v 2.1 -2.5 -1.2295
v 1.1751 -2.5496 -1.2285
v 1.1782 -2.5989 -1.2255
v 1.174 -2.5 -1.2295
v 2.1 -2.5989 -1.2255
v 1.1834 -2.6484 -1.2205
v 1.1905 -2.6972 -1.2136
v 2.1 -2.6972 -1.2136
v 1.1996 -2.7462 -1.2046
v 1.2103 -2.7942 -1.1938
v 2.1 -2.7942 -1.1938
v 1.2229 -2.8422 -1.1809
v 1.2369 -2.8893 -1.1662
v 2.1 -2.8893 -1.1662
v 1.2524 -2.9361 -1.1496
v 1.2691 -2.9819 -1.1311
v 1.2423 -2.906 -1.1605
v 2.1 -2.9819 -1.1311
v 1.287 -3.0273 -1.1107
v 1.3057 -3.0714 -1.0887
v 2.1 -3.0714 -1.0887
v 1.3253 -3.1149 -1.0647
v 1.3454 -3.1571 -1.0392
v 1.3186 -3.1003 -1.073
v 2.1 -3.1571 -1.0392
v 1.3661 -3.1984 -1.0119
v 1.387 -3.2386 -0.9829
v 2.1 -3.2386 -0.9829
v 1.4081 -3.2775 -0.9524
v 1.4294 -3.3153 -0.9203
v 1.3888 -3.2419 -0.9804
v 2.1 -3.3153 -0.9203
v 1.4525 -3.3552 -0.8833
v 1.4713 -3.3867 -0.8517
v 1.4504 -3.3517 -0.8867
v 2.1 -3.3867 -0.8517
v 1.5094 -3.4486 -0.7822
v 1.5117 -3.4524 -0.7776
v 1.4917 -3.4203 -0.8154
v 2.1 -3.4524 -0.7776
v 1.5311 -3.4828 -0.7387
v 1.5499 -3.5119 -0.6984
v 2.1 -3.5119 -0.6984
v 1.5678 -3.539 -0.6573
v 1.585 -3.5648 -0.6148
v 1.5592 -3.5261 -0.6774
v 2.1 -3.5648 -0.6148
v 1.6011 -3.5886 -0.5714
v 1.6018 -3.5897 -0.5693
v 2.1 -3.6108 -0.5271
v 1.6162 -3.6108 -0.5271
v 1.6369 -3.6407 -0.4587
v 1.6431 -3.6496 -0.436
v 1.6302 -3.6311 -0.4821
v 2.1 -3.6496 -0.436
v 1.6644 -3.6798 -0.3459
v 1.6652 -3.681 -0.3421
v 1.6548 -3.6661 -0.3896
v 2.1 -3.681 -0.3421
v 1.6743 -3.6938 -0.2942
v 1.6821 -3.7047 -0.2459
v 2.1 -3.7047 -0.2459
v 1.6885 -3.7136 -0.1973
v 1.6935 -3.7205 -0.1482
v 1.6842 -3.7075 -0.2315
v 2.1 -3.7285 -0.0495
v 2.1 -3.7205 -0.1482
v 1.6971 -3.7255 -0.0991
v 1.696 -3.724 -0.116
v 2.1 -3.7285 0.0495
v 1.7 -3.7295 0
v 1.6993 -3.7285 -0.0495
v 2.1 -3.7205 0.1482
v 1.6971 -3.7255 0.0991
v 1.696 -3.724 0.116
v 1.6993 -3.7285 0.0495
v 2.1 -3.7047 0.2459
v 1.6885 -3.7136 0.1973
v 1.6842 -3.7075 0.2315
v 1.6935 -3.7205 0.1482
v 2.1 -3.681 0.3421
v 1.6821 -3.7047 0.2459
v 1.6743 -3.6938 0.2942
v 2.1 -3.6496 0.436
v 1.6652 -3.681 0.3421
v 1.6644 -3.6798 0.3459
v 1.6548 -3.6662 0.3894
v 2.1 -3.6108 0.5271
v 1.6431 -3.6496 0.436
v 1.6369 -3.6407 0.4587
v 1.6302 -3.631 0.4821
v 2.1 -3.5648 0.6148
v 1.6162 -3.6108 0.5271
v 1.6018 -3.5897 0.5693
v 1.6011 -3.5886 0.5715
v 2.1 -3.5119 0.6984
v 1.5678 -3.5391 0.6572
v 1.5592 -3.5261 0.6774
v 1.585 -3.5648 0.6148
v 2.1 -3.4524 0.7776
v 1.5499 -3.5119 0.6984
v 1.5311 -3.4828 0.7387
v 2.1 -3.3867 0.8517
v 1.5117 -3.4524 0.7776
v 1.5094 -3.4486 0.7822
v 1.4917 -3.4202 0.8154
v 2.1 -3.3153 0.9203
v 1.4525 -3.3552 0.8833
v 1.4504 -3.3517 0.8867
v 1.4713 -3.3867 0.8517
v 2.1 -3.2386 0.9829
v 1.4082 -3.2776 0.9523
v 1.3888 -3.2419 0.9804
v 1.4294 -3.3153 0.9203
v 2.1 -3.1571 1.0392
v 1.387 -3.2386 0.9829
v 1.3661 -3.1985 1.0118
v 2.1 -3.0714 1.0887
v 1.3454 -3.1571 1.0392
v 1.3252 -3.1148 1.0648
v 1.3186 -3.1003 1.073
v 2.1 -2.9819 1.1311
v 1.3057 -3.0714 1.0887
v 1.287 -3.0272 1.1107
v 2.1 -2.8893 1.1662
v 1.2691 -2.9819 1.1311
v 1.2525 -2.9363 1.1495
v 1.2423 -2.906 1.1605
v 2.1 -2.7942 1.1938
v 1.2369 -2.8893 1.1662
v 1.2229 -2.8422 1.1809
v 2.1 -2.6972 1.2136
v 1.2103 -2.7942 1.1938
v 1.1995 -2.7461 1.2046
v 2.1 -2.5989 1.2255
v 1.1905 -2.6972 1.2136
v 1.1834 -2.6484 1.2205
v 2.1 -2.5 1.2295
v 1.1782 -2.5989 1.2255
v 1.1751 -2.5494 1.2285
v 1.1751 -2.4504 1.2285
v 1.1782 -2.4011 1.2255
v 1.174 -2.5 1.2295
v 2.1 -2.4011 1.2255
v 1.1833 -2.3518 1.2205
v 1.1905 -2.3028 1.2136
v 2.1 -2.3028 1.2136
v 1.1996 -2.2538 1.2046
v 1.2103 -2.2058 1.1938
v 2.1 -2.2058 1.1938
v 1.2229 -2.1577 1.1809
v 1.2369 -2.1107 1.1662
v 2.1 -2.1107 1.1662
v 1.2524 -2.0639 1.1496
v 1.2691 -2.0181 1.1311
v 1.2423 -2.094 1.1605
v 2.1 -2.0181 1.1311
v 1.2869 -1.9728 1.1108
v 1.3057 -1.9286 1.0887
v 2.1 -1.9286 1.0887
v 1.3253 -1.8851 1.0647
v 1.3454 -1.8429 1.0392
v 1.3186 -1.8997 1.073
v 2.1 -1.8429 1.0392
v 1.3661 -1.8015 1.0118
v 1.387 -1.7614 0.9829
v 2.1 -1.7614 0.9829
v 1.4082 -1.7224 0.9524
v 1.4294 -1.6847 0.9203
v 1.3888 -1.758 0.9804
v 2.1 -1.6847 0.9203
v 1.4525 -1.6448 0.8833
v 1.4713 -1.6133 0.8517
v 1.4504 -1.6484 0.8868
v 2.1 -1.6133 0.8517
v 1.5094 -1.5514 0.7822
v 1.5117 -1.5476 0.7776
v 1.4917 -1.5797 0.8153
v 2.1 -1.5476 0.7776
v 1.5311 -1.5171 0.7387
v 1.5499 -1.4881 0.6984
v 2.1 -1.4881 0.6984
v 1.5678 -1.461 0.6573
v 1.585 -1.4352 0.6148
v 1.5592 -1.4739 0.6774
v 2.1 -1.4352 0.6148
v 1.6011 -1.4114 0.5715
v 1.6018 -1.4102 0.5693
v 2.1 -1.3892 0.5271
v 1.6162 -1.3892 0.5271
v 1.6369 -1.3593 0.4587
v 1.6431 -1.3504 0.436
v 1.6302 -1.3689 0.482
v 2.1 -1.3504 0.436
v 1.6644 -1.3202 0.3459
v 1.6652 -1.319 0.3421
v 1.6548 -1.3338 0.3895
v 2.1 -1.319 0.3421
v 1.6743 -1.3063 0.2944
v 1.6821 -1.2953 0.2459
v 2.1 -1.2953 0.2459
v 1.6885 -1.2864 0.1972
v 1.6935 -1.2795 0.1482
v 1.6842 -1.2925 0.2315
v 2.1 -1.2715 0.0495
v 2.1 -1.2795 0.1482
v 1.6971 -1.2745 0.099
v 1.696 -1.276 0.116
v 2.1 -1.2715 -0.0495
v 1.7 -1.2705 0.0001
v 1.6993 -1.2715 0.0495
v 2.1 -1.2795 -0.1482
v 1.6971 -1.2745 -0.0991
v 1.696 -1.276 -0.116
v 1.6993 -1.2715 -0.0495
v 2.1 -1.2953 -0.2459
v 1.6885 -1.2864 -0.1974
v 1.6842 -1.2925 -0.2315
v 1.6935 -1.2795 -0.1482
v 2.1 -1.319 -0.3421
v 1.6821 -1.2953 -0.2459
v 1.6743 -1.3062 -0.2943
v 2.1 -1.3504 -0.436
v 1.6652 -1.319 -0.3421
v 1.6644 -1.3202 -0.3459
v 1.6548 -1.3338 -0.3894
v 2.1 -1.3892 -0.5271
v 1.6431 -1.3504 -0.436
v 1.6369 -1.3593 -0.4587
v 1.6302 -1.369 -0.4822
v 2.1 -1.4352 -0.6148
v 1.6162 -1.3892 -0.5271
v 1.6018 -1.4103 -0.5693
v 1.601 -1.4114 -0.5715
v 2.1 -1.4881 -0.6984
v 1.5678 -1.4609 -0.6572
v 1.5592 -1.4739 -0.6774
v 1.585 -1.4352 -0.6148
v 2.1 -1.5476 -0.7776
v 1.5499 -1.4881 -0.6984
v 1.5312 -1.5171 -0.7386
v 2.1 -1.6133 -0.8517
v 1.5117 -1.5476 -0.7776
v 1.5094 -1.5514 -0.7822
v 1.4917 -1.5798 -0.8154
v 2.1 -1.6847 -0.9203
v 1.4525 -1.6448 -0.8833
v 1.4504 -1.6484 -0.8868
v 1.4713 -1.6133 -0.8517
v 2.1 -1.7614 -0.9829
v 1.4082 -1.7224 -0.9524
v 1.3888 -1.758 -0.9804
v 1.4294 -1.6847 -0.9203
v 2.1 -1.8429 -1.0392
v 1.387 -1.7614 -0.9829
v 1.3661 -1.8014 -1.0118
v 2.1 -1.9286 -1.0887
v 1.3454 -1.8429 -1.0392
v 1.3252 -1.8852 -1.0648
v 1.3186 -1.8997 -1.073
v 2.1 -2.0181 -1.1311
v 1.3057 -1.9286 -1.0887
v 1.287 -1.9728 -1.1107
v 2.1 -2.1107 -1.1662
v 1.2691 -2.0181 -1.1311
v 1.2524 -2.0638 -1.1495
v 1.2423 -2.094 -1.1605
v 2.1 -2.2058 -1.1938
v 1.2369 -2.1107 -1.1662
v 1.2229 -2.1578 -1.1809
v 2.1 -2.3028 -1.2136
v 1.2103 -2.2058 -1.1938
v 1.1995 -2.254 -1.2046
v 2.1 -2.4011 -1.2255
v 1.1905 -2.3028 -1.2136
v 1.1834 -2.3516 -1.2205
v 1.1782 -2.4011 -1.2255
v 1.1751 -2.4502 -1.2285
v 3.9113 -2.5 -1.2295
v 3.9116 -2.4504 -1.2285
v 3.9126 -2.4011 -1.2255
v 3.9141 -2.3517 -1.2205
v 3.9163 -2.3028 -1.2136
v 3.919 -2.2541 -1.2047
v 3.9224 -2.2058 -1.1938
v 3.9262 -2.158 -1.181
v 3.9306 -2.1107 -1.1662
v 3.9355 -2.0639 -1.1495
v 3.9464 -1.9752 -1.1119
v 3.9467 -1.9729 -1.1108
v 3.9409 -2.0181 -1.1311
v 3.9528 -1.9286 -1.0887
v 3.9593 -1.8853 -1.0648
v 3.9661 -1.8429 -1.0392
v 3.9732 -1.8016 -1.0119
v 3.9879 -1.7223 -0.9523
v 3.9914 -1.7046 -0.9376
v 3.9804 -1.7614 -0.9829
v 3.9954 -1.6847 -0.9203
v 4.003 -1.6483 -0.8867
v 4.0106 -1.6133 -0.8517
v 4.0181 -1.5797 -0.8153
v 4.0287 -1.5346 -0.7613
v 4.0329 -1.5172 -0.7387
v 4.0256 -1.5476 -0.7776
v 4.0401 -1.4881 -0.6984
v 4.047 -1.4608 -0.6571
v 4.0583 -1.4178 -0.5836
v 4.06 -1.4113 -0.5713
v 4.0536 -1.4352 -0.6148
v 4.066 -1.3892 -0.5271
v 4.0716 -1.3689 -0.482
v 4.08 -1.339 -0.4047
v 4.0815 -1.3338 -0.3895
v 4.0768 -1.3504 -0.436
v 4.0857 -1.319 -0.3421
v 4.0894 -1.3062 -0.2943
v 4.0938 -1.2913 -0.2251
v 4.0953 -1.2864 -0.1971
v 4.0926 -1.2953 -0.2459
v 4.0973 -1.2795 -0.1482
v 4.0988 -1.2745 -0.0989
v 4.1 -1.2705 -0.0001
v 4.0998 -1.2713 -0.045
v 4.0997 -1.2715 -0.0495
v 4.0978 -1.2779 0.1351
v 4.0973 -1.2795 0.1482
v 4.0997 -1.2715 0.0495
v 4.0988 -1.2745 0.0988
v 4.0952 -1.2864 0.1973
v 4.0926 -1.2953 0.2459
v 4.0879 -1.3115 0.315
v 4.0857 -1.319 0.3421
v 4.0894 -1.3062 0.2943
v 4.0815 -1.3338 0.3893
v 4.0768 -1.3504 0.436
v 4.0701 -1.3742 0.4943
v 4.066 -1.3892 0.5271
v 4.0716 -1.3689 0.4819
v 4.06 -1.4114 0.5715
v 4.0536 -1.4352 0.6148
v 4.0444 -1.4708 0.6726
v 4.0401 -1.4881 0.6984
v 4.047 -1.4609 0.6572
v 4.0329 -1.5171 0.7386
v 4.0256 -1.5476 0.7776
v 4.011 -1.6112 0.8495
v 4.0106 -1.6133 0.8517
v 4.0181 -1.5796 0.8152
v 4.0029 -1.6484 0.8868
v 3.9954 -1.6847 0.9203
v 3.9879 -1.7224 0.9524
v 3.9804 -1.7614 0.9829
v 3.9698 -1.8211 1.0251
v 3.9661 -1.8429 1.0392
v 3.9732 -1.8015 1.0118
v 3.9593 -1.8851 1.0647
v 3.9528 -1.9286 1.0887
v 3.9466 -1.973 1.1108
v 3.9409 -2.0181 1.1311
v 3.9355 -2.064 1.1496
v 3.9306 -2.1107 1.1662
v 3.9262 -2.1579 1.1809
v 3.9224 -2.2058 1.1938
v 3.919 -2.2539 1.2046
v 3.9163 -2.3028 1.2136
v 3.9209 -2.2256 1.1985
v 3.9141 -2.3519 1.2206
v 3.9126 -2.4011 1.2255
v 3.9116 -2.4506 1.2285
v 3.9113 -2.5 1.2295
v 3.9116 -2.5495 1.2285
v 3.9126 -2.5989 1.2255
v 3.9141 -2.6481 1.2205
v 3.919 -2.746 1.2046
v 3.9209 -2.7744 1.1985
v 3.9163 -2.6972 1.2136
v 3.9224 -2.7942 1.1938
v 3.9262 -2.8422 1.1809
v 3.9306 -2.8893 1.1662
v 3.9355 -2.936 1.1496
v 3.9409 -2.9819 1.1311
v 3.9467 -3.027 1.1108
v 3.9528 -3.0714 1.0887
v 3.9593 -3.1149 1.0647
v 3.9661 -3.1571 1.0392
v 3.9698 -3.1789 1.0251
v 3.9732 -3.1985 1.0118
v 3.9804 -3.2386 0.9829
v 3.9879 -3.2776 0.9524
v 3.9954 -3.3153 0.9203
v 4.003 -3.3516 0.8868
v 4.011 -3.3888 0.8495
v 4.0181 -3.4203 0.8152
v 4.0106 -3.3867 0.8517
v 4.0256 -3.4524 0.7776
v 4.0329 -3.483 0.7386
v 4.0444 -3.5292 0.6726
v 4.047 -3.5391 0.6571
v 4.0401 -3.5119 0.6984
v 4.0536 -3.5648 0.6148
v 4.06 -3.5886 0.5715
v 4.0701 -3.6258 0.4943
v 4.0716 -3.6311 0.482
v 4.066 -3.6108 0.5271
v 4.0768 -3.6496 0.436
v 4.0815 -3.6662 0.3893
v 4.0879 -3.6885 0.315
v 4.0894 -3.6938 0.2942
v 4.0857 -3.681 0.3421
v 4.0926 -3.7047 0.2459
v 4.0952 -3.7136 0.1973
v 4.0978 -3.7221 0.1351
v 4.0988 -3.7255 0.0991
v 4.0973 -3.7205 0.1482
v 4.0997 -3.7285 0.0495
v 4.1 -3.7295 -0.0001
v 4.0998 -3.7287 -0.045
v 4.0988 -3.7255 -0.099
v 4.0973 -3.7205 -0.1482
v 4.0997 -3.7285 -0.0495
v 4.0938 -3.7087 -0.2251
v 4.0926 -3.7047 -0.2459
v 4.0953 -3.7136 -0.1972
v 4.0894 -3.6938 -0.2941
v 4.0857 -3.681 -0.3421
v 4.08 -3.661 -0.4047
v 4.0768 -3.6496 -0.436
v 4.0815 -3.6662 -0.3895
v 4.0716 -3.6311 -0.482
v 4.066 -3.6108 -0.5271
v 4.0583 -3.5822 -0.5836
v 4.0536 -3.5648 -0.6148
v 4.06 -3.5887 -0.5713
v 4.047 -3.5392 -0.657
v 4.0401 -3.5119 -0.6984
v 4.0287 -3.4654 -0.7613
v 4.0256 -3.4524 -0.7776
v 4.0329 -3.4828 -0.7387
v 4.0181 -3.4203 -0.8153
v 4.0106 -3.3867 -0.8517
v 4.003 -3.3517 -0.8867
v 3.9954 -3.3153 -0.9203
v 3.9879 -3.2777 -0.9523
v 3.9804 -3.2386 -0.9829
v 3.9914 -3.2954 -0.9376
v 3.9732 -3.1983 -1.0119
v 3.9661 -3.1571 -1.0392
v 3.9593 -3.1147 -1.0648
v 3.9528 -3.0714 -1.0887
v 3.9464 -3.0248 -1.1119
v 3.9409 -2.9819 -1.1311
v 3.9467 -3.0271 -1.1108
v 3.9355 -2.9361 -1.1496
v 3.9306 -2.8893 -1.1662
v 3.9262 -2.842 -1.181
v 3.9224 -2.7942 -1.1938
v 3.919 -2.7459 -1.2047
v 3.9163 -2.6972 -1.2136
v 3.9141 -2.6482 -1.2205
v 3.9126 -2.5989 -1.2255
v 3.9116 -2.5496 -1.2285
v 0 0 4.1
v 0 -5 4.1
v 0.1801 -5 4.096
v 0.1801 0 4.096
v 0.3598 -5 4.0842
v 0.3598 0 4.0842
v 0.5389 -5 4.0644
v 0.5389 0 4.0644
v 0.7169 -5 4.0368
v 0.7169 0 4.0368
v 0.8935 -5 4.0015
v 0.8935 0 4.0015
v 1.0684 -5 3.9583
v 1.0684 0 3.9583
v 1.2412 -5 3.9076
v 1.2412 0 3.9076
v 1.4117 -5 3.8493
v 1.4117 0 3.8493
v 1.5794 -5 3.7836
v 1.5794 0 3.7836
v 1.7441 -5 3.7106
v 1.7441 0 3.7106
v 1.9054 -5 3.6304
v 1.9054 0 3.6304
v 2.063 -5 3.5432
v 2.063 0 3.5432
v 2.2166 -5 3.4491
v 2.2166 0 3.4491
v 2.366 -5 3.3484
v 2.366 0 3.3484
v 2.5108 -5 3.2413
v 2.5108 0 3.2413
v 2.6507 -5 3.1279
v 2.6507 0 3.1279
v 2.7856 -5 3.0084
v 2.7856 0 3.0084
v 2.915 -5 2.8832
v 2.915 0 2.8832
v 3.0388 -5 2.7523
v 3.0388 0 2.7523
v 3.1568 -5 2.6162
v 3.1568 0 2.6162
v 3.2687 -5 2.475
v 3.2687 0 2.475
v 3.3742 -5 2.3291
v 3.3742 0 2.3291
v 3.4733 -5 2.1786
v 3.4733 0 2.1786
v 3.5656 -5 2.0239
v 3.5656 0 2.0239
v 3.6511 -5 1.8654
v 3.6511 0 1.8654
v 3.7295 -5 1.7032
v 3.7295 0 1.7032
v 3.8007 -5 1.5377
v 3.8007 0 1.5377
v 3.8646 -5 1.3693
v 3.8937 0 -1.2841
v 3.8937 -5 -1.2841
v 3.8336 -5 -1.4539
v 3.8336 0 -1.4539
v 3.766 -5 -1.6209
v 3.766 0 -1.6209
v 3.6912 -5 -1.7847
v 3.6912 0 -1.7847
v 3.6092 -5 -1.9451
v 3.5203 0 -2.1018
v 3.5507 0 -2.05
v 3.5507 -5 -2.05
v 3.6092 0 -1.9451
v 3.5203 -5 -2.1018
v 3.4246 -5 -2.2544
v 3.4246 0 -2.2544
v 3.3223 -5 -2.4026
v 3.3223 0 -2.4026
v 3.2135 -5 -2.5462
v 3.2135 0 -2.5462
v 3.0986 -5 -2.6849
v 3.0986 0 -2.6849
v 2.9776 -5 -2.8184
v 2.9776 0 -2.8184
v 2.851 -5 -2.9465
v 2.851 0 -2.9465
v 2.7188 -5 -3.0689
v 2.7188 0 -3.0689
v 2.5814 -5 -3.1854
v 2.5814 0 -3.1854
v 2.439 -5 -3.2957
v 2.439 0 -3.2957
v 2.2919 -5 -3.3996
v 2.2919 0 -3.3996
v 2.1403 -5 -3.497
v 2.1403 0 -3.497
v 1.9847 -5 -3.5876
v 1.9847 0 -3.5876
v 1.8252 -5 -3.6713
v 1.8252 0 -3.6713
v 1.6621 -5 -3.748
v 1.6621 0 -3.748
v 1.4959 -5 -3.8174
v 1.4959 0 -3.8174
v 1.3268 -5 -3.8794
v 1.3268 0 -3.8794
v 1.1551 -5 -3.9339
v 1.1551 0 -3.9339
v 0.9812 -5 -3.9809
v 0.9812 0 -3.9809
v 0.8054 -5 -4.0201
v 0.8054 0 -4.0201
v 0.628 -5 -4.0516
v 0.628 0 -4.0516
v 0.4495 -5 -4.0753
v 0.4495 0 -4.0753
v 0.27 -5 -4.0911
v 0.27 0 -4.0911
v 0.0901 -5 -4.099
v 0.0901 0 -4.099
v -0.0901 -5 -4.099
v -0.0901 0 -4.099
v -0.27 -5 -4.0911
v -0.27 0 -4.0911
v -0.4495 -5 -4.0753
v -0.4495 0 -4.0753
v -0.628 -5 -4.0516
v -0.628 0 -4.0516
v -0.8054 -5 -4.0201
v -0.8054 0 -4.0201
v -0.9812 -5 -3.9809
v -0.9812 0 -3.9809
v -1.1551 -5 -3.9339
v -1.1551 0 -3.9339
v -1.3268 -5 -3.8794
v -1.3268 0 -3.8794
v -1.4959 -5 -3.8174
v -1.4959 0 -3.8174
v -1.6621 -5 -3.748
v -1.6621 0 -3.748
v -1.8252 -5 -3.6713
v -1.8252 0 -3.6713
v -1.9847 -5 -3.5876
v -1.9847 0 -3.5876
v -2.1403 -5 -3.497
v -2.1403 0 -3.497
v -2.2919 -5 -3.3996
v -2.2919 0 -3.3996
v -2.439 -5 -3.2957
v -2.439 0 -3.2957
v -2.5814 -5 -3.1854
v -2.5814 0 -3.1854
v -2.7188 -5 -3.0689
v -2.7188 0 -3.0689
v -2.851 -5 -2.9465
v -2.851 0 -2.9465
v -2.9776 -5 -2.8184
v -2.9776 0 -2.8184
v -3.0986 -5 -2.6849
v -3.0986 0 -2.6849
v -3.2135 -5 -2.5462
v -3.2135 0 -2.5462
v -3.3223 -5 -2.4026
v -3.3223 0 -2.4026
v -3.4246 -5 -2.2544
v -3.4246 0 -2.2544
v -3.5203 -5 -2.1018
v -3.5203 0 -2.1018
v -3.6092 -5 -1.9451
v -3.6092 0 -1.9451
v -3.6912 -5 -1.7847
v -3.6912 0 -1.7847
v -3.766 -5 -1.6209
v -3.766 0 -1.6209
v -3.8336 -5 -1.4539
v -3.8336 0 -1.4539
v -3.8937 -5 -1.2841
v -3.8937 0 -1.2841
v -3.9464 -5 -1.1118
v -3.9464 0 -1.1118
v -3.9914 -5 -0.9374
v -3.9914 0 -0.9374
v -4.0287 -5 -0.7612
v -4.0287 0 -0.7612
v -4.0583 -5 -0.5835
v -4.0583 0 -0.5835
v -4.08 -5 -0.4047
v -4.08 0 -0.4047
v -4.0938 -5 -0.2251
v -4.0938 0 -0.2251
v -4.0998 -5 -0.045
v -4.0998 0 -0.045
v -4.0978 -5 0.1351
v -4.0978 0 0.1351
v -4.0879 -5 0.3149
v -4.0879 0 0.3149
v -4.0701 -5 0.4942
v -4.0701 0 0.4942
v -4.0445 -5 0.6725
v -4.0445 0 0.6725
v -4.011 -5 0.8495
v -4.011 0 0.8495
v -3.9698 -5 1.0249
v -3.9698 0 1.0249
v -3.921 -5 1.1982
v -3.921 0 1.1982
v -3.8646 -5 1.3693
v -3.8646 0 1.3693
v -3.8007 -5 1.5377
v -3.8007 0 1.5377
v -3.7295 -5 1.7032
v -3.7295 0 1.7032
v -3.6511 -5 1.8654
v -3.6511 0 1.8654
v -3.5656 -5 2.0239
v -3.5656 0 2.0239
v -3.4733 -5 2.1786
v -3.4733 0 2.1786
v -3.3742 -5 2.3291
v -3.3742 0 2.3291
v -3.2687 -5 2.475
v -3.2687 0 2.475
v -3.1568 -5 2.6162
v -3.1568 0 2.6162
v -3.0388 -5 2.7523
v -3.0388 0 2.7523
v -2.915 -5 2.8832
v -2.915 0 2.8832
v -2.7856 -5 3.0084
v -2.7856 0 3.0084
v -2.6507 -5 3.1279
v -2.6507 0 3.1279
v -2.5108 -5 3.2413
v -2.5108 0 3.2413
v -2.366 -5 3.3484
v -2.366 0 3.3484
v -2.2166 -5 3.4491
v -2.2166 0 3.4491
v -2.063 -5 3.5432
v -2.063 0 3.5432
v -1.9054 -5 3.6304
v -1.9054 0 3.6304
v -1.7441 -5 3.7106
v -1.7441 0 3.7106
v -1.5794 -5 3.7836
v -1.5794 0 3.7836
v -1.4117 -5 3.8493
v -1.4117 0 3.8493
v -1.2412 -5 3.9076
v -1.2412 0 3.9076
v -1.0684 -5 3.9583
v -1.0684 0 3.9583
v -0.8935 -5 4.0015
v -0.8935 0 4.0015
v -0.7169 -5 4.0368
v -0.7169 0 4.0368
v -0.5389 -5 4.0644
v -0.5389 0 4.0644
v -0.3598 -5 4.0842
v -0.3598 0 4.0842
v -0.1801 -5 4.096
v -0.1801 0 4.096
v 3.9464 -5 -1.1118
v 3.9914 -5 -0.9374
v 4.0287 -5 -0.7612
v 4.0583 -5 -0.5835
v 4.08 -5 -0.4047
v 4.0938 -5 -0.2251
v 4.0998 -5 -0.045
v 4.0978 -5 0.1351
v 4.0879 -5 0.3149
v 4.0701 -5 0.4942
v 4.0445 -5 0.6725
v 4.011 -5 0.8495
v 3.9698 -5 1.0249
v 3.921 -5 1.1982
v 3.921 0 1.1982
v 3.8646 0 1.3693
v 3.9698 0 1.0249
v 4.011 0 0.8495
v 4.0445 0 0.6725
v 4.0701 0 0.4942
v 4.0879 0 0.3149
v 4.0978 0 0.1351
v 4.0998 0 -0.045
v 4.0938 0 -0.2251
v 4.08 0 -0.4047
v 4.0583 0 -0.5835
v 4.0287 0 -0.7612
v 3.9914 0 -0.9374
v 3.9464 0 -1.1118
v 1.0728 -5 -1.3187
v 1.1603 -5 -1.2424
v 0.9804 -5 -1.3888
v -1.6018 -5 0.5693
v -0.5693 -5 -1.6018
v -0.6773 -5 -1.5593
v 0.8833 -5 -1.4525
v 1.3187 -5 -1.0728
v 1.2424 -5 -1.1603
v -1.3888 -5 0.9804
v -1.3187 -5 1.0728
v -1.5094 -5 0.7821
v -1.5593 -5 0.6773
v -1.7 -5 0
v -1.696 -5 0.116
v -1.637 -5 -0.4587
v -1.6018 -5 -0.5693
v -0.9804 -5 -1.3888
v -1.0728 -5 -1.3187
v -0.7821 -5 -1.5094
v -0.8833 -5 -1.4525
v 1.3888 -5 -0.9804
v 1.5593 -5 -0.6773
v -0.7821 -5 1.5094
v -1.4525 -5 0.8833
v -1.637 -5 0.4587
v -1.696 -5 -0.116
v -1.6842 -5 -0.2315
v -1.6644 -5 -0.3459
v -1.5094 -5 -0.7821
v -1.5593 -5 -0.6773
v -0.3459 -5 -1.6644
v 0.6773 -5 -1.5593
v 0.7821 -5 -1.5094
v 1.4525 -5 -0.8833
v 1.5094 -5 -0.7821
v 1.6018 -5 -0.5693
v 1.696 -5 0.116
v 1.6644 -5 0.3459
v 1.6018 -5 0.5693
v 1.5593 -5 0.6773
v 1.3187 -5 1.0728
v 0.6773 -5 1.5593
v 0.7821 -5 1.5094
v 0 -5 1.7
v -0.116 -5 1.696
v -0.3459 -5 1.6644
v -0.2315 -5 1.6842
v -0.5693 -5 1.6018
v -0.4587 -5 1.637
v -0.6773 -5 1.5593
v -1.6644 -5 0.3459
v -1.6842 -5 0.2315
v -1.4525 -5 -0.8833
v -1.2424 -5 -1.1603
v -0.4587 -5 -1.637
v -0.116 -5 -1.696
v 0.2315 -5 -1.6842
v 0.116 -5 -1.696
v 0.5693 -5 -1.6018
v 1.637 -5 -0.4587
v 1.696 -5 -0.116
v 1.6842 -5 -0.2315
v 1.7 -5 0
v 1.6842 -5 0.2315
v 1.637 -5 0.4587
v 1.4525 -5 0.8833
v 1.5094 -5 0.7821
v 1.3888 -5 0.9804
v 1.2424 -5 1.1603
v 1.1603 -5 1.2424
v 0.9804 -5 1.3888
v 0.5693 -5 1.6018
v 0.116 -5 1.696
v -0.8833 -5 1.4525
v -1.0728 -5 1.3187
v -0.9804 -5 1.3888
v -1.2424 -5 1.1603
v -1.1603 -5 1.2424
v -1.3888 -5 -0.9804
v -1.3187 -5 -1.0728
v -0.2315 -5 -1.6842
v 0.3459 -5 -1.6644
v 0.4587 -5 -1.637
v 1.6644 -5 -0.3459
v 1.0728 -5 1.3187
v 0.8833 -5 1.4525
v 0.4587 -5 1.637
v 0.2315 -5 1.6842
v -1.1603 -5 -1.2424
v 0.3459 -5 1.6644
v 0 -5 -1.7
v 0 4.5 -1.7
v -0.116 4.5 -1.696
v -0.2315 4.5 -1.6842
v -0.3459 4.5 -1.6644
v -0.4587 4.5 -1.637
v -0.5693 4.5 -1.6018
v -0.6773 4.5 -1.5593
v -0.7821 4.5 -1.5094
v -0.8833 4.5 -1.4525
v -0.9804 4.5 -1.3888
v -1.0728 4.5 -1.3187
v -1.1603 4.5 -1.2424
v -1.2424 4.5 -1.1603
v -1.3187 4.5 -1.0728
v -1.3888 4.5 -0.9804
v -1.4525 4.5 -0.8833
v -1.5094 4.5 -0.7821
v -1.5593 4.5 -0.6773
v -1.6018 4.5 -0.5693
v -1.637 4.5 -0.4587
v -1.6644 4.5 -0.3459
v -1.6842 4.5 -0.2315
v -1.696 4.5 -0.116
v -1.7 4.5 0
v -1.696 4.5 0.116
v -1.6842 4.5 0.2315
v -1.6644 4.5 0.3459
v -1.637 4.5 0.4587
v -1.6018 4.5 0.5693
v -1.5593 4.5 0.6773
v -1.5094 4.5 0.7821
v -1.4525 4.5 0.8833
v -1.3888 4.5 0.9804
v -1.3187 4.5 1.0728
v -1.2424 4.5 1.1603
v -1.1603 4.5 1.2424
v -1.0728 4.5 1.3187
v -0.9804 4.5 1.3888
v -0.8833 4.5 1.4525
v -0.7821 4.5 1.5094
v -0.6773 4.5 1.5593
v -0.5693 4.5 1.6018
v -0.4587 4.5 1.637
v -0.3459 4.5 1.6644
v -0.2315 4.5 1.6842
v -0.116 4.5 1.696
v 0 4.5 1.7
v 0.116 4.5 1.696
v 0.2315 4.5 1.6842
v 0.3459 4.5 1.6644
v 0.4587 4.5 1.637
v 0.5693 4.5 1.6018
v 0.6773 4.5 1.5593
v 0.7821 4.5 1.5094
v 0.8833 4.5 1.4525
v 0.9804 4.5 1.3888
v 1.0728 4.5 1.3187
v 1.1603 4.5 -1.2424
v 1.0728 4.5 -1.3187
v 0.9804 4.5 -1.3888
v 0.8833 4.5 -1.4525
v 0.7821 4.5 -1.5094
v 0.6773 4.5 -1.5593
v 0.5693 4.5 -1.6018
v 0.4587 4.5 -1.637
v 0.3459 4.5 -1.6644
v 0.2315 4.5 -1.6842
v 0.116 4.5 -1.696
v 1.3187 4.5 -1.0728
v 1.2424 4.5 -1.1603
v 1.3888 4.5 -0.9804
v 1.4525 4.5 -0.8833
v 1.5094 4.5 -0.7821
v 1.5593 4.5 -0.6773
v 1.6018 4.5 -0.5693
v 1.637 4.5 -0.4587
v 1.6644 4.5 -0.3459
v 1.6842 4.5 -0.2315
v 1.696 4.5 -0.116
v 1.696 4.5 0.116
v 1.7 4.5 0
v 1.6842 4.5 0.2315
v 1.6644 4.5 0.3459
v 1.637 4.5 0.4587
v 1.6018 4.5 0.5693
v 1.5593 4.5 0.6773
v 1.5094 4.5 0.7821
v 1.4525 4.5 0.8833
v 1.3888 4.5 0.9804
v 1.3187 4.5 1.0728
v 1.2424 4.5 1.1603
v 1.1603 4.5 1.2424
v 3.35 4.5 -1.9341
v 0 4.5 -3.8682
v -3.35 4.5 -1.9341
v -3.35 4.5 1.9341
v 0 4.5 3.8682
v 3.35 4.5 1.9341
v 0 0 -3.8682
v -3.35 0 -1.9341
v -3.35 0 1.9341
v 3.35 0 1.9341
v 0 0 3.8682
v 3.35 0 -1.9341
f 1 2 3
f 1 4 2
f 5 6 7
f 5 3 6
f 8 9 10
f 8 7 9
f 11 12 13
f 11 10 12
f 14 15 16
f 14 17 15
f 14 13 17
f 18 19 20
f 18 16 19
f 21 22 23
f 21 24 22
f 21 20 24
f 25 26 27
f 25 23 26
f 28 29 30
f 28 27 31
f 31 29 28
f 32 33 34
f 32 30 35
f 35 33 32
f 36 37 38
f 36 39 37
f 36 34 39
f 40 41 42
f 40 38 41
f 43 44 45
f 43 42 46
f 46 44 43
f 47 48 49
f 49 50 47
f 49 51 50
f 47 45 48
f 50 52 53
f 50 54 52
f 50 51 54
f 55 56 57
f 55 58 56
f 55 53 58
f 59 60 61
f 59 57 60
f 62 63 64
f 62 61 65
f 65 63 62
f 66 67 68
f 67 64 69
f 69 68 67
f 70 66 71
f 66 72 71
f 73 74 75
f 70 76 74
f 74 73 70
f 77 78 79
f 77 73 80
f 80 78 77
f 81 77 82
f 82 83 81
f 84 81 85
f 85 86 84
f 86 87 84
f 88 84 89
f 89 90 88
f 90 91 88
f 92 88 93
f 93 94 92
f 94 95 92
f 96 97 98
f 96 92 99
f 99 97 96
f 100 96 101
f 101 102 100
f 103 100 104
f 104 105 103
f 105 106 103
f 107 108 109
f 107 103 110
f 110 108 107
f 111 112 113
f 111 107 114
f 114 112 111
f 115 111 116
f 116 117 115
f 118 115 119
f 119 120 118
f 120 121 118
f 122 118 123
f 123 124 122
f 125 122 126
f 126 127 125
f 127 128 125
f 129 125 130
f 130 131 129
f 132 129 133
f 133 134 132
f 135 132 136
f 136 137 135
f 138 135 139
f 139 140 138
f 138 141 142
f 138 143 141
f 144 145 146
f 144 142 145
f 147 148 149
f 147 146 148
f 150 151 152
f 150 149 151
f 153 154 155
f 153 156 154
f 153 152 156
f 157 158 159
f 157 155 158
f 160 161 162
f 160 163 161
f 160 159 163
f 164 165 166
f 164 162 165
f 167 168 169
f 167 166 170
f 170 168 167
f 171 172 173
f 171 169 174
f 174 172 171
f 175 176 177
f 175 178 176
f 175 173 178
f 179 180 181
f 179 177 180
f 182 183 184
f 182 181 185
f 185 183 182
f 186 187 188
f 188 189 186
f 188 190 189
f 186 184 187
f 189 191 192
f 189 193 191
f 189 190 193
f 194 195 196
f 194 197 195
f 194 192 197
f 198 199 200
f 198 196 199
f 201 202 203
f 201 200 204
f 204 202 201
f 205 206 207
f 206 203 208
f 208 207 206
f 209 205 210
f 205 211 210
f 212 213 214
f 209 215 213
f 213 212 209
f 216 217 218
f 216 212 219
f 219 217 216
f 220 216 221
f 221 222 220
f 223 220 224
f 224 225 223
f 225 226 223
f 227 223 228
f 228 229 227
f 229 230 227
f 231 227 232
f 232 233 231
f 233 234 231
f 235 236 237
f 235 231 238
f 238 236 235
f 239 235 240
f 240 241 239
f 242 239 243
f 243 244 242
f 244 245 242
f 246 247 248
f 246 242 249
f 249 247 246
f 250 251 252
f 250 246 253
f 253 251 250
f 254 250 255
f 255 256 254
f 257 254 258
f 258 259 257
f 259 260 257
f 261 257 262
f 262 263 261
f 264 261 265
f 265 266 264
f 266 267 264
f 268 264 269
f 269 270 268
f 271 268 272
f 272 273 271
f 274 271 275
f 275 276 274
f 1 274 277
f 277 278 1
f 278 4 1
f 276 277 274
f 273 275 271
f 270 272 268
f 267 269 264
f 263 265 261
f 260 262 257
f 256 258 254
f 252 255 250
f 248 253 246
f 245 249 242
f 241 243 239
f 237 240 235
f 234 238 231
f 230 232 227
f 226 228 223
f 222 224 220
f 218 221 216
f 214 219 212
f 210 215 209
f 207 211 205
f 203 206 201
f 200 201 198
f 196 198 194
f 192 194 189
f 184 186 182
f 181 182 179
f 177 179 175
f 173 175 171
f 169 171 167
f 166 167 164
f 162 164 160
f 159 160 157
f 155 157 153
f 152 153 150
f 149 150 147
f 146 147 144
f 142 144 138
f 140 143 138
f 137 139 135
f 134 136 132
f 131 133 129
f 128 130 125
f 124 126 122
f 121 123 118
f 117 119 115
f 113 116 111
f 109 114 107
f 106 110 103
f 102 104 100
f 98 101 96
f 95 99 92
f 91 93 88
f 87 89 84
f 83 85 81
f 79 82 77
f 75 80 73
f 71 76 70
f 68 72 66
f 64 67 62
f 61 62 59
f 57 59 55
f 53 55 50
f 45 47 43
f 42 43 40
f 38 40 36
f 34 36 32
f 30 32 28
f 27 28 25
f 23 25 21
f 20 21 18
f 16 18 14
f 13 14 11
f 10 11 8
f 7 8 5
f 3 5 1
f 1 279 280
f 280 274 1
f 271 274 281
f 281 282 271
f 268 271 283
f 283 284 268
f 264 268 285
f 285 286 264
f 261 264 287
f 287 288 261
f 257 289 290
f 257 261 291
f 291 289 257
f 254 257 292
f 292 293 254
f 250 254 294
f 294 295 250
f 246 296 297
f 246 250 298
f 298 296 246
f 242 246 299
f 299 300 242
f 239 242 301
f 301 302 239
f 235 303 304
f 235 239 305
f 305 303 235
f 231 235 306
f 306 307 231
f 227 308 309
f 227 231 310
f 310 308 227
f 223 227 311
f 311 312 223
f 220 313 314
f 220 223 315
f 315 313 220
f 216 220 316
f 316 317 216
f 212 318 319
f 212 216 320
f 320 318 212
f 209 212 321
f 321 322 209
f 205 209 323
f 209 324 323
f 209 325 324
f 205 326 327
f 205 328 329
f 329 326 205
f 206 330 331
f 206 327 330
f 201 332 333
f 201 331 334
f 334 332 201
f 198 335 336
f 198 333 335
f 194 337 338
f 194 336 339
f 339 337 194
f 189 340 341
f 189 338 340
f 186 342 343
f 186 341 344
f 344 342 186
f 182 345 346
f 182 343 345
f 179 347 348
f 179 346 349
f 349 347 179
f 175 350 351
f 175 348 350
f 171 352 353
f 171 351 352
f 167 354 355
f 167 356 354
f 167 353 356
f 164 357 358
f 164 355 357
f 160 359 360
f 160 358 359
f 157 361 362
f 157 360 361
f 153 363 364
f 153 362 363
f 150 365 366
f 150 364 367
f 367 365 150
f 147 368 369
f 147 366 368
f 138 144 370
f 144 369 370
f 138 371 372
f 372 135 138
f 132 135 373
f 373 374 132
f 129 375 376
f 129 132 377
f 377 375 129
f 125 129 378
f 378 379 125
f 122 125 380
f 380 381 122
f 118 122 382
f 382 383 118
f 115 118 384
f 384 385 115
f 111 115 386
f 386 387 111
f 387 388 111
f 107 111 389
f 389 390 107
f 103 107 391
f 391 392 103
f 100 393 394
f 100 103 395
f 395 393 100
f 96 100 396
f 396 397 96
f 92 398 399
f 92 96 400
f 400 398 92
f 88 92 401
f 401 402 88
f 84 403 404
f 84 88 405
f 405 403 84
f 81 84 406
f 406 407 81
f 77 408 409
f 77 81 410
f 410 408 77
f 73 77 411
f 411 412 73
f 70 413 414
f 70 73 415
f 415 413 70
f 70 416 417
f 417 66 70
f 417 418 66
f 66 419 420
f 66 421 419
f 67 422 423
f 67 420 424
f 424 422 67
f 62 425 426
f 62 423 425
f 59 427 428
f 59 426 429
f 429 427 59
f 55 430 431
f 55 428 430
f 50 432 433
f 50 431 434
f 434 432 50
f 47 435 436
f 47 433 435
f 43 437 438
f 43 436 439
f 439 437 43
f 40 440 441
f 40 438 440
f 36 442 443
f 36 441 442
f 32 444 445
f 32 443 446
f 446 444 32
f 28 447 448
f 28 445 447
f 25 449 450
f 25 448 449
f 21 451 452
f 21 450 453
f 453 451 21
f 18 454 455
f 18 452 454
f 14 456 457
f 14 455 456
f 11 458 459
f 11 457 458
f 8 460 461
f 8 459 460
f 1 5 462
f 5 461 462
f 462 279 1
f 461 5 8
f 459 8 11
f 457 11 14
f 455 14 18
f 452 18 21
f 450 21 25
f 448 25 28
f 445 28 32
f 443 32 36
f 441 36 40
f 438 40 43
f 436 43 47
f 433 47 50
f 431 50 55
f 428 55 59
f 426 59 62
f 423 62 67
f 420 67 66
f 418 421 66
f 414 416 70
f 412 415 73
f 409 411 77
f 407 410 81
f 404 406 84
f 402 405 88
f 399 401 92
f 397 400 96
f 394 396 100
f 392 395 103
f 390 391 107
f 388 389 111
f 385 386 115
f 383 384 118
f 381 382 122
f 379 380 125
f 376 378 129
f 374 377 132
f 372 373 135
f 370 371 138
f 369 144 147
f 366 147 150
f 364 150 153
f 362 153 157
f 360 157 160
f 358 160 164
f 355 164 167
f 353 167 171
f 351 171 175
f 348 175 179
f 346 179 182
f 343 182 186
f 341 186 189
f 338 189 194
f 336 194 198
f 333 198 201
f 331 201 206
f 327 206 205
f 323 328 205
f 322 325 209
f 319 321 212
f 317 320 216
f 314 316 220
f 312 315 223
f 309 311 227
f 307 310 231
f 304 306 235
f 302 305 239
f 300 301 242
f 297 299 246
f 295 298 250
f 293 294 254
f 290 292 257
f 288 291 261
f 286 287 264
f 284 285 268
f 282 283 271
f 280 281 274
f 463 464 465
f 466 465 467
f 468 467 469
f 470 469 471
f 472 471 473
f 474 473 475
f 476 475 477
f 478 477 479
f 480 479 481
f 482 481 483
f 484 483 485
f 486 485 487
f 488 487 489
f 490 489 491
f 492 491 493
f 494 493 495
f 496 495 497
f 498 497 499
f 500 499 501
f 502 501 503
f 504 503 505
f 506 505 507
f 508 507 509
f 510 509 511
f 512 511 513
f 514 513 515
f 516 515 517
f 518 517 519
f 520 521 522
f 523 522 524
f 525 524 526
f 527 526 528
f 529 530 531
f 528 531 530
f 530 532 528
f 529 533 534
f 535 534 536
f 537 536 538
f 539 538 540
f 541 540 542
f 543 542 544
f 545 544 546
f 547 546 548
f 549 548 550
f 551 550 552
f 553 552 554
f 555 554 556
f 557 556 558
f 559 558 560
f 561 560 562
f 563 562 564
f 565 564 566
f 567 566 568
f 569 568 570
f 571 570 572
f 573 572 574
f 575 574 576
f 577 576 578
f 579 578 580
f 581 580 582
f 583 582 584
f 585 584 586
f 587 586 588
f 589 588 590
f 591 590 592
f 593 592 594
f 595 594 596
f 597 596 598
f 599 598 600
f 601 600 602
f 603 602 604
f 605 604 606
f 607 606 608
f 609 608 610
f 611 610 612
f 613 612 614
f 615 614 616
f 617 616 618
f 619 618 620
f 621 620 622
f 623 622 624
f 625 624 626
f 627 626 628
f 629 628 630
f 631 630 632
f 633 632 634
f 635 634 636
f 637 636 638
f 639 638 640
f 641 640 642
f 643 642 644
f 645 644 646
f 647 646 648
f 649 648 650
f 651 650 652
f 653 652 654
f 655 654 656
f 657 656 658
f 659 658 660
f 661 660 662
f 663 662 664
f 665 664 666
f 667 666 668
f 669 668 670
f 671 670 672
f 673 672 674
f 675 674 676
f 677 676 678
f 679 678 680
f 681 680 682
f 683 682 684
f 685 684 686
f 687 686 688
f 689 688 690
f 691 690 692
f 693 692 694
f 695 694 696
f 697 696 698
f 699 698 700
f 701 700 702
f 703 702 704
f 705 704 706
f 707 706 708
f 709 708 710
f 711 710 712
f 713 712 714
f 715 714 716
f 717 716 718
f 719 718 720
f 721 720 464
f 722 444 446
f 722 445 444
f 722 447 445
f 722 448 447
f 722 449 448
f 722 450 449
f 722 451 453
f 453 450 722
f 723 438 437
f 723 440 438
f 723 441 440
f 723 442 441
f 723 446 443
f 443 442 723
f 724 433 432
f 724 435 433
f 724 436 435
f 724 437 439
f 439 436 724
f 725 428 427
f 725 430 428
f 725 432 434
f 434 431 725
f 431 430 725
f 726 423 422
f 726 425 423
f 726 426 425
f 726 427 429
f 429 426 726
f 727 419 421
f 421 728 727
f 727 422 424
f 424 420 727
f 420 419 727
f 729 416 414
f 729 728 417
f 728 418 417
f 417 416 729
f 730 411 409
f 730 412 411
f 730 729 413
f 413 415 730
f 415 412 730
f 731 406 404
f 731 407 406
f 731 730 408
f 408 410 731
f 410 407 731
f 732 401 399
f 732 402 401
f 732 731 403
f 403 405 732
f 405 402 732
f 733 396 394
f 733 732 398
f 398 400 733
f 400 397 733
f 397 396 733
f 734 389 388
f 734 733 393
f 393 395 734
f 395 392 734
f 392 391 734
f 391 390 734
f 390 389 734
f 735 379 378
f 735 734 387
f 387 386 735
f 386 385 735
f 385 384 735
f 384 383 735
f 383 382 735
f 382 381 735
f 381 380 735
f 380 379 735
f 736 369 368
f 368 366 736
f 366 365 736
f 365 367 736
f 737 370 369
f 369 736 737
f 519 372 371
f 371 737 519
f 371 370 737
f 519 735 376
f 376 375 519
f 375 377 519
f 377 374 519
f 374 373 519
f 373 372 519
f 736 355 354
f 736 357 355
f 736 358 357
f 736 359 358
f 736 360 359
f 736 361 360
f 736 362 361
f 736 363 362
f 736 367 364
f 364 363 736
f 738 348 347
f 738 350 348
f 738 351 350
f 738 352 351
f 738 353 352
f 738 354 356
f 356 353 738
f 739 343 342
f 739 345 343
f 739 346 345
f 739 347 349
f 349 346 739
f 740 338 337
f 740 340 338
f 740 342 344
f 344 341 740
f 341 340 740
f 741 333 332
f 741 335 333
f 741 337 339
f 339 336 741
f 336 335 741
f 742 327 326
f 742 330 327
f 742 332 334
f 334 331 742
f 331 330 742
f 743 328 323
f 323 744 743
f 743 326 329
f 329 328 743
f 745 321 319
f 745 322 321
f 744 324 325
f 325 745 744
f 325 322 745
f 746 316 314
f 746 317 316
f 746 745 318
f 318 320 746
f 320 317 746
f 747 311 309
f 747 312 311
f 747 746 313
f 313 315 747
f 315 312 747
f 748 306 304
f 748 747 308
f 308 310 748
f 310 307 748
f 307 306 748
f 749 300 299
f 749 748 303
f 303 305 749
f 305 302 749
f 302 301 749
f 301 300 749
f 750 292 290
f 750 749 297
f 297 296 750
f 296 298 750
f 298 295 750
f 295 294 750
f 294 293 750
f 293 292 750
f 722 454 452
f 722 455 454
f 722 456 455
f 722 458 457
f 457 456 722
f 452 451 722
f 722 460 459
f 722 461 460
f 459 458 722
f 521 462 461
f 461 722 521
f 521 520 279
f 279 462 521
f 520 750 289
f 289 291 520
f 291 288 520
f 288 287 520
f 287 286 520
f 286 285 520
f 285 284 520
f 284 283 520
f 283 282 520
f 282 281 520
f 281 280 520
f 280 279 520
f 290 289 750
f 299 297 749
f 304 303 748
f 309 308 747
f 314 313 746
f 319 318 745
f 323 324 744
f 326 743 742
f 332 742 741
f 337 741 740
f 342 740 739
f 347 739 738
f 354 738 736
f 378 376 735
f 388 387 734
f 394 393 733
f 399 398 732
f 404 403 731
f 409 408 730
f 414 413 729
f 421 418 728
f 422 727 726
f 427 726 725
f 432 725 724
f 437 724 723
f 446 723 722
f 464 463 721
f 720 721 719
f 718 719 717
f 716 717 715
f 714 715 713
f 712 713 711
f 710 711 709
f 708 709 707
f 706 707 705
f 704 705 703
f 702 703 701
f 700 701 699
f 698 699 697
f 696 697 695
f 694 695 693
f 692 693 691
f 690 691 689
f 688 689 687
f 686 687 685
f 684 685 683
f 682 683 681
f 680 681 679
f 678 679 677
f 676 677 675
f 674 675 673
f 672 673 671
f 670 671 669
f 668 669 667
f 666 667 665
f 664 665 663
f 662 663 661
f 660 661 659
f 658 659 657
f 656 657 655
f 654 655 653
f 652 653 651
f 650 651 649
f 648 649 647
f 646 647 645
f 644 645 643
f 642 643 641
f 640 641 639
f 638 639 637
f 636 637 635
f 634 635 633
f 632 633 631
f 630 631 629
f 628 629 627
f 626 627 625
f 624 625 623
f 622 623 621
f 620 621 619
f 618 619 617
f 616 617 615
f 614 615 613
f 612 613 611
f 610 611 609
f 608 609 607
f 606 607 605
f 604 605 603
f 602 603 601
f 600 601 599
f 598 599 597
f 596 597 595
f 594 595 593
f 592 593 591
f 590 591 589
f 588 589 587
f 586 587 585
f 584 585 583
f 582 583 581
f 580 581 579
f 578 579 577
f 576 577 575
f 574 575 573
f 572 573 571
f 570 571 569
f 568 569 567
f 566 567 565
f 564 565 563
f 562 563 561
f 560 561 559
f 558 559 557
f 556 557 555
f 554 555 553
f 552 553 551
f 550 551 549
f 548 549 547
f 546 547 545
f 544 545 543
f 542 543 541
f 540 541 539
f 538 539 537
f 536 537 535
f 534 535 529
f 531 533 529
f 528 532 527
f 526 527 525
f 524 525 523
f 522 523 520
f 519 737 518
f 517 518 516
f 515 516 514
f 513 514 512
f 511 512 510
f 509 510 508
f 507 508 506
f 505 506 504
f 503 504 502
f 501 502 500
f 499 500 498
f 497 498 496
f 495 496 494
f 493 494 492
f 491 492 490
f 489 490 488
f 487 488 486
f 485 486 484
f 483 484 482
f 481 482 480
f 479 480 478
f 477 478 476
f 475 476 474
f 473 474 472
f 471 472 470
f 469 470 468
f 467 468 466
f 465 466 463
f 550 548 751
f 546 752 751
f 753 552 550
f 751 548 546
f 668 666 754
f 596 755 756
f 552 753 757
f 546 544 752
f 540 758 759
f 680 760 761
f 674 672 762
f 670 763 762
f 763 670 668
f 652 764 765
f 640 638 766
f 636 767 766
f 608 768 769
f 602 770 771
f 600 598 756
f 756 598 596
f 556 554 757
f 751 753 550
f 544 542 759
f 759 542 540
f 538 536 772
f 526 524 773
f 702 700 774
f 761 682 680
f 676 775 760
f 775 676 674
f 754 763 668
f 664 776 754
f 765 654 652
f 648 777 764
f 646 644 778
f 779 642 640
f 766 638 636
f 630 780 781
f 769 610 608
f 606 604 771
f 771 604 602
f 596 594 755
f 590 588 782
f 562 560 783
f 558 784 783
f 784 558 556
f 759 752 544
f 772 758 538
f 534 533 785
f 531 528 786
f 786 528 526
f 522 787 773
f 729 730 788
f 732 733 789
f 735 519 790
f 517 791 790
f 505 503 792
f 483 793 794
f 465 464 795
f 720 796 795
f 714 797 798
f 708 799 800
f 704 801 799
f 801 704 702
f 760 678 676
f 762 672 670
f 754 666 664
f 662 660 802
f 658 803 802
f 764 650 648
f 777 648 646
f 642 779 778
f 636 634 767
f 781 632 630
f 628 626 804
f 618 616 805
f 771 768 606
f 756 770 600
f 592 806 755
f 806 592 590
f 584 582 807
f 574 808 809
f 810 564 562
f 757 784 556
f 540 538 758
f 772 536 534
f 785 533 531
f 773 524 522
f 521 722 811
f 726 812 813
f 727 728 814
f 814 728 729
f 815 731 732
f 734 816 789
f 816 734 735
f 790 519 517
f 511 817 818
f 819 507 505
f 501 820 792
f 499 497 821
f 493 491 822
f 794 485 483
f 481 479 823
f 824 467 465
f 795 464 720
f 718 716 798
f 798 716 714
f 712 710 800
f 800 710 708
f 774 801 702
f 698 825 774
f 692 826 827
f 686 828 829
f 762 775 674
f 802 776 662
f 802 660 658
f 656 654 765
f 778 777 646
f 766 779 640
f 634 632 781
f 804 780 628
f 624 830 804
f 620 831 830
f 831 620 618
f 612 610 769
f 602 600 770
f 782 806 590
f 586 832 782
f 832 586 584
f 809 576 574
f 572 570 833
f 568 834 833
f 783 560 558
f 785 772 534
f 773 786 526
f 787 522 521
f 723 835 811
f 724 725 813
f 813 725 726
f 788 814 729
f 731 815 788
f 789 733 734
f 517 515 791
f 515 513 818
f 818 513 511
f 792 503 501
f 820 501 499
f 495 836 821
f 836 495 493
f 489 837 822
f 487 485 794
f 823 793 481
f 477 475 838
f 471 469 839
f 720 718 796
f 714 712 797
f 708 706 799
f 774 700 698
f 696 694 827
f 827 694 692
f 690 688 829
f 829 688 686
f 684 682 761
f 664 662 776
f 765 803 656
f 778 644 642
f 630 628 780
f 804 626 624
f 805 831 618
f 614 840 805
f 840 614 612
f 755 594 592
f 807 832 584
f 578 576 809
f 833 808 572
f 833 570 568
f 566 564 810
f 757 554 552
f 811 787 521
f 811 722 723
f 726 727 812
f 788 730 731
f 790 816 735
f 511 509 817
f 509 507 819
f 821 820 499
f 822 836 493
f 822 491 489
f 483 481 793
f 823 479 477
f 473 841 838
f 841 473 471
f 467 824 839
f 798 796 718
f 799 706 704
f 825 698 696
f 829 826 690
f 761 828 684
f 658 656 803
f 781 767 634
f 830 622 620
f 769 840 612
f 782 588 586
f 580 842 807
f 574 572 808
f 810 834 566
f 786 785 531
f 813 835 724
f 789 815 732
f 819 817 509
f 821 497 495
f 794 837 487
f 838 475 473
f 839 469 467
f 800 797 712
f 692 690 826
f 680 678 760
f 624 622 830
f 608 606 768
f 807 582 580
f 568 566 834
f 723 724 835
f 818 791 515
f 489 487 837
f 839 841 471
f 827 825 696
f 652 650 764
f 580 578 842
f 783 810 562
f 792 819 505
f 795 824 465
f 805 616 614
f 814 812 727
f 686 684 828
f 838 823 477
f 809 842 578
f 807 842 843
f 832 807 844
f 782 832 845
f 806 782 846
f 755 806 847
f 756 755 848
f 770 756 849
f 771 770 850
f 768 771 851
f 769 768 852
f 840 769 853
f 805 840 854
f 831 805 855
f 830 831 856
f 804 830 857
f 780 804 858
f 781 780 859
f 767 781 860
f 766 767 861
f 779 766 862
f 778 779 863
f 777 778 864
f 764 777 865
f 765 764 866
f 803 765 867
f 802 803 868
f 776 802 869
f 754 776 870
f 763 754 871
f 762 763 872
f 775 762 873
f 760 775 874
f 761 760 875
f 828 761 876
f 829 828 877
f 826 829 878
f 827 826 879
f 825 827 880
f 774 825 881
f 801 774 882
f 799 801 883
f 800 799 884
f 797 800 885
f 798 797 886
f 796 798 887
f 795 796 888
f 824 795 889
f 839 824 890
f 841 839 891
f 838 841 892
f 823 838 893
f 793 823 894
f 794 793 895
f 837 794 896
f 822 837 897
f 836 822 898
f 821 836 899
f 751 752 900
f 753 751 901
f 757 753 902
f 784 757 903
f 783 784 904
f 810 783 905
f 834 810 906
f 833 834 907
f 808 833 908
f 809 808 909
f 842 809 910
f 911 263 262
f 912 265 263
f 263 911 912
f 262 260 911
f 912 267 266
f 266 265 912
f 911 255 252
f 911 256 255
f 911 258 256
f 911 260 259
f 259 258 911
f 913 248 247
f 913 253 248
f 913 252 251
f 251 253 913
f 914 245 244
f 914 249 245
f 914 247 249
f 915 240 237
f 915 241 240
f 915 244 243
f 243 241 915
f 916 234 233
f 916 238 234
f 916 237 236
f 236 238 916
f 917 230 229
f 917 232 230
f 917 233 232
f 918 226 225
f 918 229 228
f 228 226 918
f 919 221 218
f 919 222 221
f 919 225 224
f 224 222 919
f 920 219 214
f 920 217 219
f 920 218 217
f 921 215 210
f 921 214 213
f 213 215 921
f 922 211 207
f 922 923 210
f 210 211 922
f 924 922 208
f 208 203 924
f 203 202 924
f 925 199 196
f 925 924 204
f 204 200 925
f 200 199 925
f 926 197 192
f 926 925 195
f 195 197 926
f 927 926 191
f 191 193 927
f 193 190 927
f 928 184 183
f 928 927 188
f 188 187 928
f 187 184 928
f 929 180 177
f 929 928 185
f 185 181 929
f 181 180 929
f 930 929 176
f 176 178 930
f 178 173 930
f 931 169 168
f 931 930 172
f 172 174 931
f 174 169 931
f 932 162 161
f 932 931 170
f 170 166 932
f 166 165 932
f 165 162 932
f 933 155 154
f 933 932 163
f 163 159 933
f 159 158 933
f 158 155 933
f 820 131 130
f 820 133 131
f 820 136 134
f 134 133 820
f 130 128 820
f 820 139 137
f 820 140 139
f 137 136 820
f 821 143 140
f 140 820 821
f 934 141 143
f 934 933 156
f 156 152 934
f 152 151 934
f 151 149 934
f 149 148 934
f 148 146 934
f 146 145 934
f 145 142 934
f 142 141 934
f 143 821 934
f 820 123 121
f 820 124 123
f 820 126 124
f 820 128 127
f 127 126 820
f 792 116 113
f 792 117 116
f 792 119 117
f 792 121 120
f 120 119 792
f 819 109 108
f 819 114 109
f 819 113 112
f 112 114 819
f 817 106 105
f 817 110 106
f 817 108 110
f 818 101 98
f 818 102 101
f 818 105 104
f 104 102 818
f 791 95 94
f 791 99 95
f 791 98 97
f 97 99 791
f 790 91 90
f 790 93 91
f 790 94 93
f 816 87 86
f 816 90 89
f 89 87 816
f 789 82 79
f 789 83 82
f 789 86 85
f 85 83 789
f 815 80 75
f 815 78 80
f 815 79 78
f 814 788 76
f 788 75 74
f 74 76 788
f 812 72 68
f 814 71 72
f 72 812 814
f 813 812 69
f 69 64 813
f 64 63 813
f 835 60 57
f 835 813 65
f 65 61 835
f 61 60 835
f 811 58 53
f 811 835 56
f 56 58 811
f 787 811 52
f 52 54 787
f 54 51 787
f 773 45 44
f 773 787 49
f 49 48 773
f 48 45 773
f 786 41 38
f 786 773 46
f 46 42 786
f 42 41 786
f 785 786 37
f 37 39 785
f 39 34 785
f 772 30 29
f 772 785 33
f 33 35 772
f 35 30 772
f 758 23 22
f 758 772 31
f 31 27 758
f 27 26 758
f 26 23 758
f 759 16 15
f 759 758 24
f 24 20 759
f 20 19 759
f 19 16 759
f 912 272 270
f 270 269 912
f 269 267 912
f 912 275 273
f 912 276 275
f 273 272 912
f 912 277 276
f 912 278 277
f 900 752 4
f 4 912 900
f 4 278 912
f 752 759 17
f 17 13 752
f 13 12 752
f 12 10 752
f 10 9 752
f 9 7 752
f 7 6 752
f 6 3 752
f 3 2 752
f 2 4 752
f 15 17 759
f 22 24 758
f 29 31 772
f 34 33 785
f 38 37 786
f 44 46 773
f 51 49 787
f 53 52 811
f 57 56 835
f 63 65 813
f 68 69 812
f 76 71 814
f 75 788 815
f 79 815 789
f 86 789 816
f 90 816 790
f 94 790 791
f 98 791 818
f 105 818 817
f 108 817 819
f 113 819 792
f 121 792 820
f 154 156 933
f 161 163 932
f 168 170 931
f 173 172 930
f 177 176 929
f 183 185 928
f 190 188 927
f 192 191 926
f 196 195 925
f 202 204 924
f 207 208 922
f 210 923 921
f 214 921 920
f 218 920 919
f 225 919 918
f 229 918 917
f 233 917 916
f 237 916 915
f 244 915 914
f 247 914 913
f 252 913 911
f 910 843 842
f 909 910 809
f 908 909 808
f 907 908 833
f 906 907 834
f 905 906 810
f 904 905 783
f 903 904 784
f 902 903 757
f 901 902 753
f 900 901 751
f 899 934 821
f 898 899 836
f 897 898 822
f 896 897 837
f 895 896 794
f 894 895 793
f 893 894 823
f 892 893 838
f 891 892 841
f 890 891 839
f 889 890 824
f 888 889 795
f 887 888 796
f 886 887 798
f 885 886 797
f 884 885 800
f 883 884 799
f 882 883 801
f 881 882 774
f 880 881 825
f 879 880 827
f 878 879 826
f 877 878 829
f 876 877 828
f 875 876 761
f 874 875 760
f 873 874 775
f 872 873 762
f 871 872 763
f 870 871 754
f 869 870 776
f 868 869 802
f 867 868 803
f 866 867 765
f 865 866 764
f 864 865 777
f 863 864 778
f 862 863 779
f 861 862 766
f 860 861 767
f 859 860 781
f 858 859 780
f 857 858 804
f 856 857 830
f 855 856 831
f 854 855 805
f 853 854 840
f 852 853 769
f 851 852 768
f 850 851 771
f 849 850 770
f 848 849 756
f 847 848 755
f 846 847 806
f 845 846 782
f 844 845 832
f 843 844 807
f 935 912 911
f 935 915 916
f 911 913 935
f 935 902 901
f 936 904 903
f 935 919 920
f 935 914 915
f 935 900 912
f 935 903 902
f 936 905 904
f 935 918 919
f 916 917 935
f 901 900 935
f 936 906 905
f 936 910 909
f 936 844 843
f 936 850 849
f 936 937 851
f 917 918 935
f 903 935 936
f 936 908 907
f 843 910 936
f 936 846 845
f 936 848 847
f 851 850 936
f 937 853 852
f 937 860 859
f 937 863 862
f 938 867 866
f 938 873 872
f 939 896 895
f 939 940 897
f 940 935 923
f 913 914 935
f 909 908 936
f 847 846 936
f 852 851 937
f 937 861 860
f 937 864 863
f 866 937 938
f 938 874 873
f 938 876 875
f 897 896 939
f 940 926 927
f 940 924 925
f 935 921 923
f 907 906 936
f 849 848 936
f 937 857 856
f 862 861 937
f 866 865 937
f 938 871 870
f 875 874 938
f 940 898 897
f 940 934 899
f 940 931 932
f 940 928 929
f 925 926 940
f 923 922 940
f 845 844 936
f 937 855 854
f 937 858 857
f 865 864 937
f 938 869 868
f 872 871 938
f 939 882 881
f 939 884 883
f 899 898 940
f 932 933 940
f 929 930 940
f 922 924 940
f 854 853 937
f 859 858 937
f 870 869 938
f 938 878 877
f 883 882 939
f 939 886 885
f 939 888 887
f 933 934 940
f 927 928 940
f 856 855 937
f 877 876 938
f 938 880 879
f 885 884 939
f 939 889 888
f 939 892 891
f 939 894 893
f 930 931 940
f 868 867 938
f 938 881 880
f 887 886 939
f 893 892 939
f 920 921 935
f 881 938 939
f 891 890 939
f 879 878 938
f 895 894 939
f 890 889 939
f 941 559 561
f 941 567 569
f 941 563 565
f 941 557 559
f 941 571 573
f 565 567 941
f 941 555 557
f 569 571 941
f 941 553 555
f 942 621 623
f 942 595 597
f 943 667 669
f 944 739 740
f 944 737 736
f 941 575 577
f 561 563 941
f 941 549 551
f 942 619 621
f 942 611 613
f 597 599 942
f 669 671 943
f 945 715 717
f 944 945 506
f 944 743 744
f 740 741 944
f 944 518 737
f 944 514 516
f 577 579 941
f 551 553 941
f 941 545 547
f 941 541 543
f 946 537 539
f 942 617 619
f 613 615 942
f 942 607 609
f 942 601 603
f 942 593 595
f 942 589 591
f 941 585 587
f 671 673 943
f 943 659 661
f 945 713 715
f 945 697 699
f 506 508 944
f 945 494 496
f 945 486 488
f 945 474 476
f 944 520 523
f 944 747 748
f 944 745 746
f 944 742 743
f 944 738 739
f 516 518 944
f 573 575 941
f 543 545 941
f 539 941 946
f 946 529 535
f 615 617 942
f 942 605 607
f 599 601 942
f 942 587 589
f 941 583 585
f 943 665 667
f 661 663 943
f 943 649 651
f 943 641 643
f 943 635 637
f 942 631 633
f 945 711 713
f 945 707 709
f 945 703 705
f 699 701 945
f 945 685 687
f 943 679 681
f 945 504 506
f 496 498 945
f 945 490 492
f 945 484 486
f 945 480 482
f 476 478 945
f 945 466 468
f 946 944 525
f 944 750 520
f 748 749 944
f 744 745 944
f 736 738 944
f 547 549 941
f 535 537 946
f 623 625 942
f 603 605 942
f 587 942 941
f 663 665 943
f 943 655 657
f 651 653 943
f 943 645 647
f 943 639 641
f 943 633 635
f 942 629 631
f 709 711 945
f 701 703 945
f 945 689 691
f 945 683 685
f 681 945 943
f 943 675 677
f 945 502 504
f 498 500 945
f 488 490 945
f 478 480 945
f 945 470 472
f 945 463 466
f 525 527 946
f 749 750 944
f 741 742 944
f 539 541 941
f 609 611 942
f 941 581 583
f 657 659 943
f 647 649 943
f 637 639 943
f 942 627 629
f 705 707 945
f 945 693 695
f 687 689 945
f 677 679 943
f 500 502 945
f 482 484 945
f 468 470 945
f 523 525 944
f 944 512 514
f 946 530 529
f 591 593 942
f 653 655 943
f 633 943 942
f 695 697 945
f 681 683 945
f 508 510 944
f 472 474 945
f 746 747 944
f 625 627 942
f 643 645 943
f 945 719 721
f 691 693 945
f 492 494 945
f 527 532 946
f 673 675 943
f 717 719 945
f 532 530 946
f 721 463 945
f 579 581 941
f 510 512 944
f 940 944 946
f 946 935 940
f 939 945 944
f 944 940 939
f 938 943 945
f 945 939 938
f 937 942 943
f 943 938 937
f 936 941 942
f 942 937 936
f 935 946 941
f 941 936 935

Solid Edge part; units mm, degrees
sketch "Sketch1" plane through (0, 0, 0) normal (0, -1, 0) x (1, 0, 0)
  line L0 (3.35, 1.9341) -> (0, 3.8682)
  line L1 (0, 3.8682) -> (-3.35, 1.9341)
  line L2 (-3.35, 1.9341) -> (-3.35, -1.9341)
  line L3 (-3.35, -1.9341) -> (0, -3.8682)
  line L4 (0, -3.8682) -> (3.35, -1.9341)
  line L5 (3.35, -1.9341) -> (3.35, 1.9341)
extrude "Protrusion1" add sketch "Sketch1" against normal blind 4.5
sketch "Sketch2" plane through (0, 0, 0) normal (0, -1, 0) x (0.866, 0, -0.5)
  circle A0 centre (0, 0) radius 4.1
extrude "ExtrudedProtrusion_3" add sketch "Sketch2" along normal blind 5
hole "Hole_1" at (0, -5, 0) direction (0, 1, 0) diameter 3.4 end up to next
hole "Hole_2" at (4.1, -2.5, 0) direction (-1, 0, 0) diameter 2.459 end up to next thread major 3 thread length 2
